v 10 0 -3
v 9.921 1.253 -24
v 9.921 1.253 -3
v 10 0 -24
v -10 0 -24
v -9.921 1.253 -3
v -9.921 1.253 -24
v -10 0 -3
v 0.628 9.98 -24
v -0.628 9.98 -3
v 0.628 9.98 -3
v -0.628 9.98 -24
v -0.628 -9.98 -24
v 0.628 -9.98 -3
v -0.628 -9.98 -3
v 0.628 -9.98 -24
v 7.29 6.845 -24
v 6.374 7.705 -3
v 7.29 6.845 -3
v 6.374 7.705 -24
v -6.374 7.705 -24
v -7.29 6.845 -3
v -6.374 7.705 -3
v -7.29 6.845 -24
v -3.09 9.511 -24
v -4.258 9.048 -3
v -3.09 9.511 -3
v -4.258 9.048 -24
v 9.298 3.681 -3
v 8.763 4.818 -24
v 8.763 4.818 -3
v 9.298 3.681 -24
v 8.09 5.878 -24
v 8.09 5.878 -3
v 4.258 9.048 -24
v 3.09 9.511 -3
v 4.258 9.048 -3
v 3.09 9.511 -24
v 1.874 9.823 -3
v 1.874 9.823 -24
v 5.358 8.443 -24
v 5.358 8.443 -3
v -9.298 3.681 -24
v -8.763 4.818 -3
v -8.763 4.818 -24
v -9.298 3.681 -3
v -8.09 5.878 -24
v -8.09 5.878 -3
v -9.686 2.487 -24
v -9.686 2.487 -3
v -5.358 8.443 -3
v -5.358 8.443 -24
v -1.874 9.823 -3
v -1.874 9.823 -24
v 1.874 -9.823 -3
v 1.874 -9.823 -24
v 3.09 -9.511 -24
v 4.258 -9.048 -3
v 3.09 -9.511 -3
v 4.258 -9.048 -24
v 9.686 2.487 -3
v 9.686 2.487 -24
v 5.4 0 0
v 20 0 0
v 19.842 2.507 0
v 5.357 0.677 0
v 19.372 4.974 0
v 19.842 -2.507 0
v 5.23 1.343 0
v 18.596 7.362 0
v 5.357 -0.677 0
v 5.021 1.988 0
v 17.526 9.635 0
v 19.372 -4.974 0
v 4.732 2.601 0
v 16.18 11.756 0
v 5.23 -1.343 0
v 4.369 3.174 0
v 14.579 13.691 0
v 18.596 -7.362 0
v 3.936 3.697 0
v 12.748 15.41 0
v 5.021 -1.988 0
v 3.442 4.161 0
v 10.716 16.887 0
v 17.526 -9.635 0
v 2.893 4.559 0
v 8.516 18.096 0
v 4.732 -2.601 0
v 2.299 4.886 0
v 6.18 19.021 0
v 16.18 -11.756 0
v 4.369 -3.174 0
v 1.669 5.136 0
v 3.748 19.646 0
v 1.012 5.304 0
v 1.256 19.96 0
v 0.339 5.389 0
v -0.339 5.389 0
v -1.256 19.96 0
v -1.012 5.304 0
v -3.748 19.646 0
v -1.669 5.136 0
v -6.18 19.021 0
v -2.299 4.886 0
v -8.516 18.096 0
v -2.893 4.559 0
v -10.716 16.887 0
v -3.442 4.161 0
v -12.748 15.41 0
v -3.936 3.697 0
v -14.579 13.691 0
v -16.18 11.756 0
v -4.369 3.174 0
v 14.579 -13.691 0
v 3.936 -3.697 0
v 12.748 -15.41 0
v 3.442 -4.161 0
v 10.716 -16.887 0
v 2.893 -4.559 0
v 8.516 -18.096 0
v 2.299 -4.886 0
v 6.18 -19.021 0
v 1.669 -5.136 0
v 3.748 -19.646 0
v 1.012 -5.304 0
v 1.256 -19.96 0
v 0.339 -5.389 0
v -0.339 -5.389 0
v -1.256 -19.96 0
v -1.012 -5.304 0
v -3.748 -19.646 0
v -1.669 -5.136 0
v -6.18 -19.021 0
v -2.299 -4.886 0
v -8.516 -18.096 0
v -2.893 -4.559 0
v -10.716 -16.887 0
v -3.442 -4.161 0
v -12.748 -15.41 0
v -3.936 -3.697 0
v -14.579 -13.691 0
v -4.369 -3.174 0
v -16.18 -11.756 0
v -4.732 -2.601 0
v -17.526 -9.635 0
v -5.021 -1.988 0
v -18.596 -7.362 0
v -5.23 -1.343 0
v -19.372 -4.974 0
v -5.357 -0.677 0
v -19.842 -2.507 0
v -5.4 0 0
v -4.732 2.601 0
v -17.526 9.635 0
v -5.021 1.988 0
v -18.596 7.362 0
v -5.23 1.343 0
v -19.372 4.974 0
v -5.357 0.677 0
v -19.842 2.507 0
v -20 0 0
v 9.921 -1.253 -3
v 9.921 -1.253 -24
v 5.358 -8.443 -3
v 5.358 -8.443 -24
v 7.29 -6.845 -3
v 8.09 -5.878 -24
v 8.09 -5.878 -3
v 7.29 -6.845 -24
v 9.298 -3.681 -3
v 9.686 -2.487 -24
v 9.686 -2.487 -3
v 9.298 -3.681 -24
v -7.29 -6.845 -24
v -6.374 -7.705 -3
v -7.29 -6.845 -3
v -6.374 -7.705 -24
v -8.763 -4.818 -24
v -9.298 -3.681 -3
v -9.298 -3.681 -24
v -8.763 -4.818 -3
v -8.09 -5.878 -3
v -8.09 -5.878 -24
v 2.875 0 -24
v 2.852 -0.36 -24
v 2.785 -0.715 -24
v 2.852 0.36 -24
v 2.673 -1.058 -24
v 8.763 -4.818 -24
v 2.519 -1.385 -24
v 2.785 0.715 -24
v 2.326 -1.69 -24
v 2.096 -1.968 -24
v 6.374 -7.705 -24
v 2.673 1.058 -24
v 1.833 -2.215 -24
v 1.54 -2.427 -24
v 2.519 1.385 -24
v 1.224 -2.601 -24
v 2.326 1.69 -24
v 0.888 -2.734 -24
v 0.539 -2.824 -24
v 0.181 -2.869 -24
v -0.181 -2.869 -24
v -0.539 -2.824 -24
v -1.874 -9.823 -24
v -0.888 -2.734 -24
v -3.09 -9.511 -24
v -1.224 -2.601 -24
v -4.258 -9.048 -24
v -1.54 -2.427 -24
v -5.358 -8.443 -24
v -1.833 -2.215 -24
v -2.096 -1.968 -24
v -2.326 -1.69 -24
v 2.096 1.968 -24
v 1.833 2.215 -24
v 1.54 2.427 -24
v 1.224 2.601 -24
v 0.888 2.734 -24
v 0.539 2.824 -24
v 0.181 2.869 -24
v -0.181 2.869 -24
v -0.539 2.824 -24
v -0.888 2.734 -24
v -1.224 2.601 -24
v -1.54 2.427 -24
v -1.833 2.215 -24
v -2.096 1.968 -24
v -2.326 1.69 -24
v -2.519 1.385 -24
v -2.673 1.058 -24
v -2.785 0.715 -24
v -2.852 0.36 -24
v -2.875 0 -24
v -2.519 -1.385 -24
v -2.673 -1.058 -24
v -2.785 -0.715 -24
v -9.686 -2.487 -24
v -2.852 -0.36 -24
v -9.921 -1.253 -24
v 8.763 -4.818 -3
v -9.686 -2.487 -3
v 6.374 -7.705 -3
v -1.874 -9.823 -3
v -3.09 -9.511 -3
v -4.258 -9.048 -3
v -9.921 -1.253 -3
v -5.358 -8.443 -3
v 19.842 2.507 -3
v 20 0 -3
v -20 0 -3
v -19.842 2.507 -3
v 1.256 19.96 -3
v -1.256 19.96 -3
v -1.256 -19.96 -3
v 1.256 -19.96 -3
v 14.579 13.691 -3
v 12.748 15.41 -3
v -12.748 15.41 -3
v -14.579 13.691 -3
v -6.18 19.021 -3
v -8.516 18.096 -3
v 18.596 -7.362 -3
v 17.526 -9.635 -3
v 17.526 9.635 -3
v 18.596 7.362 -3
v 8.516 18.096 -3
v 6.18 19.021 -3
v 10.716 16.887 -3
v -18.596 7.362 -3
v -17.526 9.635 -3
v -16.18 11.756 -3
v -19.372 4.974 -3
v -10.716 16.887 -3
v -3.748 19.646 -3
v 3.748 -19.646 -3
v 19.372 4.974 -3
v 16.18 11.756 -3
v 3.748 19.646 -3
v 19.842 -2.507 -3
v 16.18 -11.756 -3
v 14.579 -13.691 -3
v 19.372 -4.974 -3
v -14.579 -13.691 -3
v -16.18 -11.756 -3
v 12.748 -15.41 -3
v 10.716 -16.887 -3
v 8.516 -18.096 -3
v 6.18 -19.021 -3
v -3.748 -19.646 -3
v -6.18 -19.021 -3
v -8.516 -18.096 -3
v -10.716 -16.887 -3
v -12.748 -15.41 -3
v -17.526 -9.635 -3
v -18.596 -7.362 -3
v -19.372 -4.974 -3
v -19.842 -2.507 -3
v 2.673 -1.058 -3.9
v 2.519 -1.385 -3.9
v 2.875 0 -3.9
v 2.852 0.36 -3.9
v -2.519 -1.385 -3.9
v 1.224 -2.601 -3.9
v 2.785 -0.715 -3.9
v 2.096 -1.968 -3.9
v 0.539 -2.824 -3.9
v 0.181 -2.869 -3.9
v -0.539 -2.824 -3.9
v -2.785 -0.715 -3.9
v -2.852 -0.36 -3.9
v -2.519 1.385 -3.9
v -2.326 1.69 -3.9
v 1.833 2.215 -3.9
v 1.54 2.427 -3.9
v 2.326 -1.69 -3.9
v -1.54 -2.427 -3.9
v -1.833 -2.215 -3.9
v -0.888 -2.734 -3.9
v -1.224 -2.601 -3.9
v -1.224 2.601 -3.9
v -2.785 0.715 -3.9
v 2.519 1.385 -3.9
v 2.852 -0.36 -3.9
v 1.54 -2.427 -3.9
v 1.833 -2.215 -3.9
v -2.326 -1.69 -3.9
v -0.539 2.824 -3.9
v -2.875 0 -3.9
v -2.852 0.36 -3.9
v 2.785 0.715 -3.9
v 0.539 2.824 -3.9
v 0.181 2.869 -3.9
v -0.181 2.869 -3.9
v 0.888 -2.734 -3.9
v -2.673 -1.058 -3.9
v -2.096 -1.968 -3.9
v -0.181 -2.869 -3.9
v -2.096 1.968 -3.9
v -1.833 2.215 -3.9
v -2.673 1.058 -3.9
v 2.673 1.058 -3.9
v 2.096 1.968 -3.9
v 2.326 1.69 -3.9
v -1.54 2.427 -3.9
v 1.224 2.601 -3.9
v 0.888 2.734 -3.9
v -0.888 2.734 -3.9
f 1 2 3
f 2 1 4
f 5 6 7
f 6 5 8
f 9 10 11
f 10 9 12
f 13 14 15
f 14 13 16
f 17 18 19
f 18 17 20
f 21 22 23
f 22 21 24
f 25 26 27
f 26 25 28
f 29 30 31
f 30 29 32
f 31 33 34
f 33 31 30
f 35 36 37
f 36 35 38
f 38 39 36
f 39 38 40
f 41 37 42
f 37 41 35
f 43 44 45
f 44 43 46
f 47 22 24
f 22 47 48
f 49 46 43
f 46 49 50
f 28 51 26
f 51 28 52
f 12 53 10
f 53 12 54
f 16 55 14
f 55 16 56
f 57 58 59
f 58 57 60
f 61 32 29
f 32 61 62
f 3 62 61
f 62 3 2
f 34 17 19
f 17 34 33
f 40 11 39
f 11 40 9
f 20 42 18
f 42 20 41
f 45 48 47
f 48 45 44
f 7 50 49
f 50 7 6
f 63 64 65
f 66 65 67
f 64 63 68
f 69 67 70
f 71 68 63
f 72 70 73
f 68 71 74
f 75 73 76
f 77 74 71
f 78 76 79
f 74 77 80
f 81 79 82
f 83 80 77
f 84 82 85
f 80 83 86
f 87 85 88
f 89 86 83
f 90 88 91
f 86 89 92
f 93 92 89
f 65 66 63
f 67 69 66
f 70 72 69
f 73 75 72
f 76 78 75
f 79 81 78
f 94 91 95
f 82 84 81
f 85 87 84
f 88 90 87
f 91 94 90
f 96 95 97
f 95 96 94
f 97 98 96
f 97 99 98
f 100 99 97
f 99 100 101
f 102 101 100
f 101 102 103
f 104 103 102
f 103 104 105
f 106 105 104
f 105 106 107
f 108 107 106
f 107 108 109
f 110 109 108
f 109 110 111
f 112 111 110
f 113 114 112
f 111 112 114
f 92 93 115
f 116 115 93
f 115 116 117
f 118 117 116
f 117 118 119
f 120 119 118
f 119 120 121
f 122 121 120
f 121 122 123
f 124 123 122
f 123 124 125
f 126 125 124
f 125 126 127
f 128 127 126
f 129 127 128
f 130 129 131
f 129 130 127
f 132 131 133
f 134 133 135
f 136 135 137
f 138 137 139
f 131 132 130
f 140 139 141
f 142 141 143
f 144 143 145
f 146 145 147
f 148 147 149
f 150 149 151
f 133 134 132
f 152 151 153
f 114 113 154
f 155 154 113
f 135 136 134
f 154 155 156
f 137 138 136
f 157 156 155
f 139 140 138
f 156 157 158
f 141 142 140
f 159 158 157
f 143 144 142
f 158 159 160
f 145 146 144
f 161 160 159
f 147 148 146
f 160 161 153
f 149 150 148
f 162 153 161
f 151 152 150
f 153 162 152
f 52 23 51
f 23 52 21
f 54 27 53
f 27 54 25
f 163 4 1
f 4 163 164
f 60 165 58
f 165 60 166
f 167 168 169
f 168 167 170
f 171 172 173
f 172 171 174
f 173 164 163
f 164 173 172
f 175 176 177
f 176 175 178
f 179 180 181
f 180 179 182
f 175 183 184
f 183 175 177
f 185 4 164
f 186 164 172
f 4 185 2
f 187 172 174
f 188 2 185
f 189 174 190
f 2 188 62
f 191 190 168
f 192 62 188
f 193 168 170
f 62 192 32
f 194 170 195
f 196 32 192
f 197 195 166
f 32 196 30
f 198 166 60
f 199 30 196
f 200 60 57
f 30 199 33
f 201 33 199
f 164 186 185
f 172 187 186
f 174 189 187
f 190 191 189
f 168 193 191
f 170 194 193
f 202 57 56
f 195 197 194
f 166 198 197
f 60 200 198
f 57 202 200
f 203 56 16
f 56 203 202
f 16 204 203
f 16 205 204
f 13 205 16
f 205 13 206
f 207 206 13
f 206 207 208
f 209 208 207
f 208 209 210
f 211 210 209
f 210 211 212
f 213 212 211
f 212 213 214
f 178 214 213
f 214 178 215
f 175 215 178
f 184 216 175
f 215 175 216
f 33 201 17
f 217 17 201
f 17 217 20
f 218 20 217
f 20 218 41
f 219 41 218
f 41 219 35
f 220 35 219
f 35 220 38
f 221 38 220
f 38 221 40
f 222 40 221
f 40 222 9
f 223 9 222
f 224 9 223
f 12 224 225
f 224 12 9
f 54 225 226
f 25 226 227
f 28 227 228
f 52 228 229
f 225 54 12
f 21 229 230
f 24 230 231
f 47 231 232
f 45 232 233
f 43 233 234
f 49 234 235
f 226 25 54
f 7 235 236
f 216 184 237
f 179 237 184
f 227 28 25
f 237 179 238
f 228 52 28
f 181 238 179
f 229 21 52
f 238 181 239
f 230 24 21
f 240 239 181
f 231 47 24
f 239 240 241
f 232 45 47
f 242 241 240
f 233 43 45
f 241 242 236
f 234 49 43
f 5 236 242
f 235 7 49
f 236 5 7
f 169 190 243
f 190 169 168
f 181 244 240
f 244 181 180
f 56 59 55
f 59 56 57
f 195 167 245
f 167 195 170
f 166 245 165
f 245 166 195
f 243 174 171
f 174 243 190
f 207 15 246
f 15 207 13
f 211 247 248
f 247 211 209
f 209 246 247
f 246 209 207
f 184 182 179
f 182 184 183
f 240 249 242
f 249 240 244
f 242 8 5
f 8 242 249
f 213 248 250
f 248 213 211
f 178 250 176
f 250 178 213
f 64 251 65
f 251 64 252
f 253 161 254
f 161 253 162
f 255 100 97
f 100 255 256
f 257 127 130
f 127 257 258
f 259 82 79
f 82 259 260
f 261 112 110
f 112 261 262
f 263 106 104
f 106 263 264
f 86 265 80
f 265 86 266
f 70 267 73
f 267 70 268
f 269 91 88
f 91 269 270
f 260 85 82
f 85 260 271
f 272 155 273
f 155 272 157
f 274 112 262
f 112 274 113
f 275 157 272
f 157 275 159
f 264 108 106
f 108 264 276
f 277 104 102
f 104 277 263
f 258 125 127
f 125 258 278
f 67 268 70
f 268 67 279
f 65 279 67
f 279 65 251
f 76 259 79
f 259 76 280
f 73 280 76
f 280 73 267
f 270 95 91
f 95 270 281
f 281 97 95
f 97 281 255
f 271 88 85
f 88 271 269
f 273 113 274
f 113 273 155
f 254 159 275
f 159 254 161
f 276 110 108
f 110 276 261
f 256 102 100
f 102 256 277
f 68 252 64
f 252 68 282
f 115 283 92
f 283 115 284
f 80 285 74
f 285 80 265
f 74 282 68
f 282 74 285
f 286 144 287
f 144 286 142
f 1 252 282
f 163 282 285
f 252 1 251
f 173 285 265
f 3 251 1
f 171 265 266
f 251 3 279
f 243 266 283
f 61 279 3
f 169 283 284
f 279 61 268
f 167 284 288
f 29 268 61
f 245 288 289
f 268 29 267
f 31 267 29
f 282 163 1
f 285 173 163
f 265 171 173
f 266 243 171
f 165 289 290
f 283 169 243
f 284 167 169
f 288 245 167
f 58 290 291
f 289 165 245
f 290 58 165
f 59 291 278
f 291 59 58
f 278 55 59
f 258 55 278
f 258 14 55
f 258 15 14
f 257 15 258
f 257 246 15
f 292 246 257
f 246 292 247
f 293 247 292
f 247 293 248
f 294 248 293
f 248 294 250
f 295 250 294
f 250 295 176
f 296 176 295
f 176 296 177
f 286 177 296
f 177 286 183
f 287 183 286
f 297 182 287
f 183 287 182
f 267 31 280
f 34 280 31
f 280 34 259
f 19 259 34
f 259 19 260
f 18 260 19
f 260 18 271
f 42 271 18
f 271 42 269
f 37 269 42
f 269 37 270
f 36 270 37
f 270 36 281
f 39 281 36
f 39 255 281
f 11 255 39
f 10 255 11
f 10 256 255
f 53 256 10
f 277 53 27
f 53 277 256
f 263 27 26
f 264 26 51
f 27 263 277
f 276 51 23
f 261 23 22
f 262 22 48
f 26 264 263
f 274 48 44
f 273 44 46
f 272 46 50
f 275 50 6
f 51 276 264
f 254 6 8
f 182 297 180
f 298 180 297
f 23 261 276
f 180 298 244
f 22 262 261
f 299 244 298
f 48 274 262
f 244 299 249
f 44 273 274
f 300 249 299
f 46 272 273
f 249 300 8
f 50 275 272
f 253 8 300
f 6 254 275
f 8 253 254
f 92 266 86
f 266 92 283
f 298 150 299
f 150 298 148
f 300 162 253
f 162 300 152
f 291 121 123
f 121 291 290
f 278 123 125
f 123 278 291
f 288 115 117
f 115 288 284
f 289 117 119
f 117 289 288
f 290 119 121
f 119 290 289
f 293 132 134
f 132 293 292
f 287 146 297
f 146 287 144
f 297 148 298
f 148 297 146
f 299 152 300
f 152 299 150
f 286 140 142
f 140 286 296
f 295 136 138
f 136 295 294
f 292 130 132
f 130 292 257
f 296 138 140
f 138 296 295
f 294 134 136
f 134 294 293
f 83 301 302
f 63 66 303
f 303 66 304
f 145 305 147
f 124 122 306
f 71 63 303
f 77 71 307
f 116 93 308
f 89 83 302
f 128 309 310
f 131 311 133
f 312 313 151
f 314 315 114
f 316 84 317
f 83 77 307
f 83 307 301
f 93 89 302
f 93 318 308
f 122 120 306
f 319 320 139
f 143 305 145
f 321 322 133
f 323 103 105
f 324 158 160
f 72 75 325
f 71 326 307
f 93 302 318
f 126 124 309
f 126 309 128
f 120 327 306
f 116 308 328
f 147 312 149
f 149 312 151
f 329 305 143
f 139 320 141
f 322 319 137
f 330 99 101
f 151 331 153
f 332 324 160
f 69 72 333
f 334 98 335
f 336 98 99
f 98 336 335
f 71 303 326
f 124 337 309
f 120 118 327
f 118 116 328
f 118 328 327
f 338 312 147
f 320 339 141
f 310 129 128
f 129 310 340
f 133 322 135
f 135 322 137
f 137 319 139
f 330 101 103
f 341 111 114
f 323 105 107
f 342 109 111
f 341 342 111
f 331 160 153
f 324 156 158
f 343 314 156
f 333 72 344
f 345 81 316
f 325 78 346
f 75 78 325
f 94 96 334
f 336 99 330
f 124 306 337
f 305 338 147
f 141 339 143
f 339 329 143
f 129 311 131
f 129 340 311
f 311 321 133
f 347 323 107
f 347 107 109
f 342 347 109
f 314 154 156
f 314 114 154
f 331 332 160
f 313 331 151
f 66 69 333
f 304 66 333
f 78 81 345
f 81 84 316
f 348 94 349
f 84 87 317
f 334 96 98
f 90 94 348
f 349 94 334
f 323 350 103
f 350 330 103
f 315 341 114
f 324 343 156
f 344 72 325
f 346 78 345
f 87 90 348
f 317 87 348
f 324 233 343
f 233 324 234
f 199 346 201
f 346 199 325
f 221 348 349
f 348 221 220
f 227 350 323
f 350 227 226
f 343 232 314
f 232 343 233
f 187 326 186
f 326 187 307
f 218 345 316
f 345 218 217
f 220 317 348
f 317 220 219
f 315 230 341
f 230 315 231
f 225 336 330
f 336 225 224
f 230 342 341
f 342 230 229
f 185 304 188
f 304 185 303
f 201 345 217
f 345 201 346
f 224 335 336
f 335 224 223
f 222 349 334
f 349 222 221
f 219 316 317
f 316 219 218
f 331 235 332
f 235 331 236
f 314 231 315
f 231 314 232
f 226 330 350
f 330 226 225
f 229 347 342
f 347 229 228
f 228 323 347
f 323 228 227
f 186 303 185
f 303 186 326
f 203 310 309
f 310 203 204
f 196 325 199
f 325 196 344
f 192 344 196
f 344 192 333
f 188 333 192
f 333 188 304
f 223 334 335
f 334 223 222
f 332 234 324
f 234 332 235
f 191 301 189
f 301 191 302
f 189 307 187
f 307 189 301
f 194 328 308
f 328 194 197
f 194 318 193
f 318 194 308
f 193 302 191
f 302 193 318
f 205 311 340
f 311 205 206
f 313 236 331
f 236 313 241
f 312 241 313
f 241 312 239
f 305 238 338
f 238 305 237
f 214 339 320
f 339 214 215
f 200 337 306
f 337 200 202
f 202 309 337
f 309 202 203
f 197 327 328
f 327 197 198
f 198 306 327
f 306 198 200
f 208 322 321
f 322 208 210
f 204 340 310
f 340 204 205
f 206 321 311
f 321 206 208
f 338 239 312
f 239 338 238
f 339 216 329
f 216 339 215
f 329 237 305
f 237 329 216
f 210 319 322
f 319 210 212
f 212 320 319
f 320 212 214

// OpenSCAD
$fn = 50;


difference() {
	union() {
		translate(v = [0, 0, -24.0000000000]) {
			cylinder(h = 24, r = 10.0000000000);
		}
		translate(v = [0, 0, -3.0000000000]) {
			cylinder(h = 3, r = 20.0000000000);
		}
	}
	union() {
		translate(v = [0, 0, 0]) {
			rotate(a = [0, 0, 0]) {
				difference() {
					union() {
						#translate(v = [0, 0, -24.0000000000]) {
							cylinder(h = 24, r = 2.6000000000);
						}
						#translate(v = [0, 0, -3.9000000000]) {
							cylinder(h = 3.9000000000, r = 10.0000000000, r1 = 2.8750000000, r2 = 5.4000000000);
						}
						#translate(v = [0, 0, -24.0000000000]) {
							cylinder(h = 24, r = 2.8750000000);
						}
						#translate(v = [0, 0, -24.0000000000]) {
							cylinder(h = 24, r = 2.6000000000);
						}
					}
					union();
				}
			}
		}
	}
}
